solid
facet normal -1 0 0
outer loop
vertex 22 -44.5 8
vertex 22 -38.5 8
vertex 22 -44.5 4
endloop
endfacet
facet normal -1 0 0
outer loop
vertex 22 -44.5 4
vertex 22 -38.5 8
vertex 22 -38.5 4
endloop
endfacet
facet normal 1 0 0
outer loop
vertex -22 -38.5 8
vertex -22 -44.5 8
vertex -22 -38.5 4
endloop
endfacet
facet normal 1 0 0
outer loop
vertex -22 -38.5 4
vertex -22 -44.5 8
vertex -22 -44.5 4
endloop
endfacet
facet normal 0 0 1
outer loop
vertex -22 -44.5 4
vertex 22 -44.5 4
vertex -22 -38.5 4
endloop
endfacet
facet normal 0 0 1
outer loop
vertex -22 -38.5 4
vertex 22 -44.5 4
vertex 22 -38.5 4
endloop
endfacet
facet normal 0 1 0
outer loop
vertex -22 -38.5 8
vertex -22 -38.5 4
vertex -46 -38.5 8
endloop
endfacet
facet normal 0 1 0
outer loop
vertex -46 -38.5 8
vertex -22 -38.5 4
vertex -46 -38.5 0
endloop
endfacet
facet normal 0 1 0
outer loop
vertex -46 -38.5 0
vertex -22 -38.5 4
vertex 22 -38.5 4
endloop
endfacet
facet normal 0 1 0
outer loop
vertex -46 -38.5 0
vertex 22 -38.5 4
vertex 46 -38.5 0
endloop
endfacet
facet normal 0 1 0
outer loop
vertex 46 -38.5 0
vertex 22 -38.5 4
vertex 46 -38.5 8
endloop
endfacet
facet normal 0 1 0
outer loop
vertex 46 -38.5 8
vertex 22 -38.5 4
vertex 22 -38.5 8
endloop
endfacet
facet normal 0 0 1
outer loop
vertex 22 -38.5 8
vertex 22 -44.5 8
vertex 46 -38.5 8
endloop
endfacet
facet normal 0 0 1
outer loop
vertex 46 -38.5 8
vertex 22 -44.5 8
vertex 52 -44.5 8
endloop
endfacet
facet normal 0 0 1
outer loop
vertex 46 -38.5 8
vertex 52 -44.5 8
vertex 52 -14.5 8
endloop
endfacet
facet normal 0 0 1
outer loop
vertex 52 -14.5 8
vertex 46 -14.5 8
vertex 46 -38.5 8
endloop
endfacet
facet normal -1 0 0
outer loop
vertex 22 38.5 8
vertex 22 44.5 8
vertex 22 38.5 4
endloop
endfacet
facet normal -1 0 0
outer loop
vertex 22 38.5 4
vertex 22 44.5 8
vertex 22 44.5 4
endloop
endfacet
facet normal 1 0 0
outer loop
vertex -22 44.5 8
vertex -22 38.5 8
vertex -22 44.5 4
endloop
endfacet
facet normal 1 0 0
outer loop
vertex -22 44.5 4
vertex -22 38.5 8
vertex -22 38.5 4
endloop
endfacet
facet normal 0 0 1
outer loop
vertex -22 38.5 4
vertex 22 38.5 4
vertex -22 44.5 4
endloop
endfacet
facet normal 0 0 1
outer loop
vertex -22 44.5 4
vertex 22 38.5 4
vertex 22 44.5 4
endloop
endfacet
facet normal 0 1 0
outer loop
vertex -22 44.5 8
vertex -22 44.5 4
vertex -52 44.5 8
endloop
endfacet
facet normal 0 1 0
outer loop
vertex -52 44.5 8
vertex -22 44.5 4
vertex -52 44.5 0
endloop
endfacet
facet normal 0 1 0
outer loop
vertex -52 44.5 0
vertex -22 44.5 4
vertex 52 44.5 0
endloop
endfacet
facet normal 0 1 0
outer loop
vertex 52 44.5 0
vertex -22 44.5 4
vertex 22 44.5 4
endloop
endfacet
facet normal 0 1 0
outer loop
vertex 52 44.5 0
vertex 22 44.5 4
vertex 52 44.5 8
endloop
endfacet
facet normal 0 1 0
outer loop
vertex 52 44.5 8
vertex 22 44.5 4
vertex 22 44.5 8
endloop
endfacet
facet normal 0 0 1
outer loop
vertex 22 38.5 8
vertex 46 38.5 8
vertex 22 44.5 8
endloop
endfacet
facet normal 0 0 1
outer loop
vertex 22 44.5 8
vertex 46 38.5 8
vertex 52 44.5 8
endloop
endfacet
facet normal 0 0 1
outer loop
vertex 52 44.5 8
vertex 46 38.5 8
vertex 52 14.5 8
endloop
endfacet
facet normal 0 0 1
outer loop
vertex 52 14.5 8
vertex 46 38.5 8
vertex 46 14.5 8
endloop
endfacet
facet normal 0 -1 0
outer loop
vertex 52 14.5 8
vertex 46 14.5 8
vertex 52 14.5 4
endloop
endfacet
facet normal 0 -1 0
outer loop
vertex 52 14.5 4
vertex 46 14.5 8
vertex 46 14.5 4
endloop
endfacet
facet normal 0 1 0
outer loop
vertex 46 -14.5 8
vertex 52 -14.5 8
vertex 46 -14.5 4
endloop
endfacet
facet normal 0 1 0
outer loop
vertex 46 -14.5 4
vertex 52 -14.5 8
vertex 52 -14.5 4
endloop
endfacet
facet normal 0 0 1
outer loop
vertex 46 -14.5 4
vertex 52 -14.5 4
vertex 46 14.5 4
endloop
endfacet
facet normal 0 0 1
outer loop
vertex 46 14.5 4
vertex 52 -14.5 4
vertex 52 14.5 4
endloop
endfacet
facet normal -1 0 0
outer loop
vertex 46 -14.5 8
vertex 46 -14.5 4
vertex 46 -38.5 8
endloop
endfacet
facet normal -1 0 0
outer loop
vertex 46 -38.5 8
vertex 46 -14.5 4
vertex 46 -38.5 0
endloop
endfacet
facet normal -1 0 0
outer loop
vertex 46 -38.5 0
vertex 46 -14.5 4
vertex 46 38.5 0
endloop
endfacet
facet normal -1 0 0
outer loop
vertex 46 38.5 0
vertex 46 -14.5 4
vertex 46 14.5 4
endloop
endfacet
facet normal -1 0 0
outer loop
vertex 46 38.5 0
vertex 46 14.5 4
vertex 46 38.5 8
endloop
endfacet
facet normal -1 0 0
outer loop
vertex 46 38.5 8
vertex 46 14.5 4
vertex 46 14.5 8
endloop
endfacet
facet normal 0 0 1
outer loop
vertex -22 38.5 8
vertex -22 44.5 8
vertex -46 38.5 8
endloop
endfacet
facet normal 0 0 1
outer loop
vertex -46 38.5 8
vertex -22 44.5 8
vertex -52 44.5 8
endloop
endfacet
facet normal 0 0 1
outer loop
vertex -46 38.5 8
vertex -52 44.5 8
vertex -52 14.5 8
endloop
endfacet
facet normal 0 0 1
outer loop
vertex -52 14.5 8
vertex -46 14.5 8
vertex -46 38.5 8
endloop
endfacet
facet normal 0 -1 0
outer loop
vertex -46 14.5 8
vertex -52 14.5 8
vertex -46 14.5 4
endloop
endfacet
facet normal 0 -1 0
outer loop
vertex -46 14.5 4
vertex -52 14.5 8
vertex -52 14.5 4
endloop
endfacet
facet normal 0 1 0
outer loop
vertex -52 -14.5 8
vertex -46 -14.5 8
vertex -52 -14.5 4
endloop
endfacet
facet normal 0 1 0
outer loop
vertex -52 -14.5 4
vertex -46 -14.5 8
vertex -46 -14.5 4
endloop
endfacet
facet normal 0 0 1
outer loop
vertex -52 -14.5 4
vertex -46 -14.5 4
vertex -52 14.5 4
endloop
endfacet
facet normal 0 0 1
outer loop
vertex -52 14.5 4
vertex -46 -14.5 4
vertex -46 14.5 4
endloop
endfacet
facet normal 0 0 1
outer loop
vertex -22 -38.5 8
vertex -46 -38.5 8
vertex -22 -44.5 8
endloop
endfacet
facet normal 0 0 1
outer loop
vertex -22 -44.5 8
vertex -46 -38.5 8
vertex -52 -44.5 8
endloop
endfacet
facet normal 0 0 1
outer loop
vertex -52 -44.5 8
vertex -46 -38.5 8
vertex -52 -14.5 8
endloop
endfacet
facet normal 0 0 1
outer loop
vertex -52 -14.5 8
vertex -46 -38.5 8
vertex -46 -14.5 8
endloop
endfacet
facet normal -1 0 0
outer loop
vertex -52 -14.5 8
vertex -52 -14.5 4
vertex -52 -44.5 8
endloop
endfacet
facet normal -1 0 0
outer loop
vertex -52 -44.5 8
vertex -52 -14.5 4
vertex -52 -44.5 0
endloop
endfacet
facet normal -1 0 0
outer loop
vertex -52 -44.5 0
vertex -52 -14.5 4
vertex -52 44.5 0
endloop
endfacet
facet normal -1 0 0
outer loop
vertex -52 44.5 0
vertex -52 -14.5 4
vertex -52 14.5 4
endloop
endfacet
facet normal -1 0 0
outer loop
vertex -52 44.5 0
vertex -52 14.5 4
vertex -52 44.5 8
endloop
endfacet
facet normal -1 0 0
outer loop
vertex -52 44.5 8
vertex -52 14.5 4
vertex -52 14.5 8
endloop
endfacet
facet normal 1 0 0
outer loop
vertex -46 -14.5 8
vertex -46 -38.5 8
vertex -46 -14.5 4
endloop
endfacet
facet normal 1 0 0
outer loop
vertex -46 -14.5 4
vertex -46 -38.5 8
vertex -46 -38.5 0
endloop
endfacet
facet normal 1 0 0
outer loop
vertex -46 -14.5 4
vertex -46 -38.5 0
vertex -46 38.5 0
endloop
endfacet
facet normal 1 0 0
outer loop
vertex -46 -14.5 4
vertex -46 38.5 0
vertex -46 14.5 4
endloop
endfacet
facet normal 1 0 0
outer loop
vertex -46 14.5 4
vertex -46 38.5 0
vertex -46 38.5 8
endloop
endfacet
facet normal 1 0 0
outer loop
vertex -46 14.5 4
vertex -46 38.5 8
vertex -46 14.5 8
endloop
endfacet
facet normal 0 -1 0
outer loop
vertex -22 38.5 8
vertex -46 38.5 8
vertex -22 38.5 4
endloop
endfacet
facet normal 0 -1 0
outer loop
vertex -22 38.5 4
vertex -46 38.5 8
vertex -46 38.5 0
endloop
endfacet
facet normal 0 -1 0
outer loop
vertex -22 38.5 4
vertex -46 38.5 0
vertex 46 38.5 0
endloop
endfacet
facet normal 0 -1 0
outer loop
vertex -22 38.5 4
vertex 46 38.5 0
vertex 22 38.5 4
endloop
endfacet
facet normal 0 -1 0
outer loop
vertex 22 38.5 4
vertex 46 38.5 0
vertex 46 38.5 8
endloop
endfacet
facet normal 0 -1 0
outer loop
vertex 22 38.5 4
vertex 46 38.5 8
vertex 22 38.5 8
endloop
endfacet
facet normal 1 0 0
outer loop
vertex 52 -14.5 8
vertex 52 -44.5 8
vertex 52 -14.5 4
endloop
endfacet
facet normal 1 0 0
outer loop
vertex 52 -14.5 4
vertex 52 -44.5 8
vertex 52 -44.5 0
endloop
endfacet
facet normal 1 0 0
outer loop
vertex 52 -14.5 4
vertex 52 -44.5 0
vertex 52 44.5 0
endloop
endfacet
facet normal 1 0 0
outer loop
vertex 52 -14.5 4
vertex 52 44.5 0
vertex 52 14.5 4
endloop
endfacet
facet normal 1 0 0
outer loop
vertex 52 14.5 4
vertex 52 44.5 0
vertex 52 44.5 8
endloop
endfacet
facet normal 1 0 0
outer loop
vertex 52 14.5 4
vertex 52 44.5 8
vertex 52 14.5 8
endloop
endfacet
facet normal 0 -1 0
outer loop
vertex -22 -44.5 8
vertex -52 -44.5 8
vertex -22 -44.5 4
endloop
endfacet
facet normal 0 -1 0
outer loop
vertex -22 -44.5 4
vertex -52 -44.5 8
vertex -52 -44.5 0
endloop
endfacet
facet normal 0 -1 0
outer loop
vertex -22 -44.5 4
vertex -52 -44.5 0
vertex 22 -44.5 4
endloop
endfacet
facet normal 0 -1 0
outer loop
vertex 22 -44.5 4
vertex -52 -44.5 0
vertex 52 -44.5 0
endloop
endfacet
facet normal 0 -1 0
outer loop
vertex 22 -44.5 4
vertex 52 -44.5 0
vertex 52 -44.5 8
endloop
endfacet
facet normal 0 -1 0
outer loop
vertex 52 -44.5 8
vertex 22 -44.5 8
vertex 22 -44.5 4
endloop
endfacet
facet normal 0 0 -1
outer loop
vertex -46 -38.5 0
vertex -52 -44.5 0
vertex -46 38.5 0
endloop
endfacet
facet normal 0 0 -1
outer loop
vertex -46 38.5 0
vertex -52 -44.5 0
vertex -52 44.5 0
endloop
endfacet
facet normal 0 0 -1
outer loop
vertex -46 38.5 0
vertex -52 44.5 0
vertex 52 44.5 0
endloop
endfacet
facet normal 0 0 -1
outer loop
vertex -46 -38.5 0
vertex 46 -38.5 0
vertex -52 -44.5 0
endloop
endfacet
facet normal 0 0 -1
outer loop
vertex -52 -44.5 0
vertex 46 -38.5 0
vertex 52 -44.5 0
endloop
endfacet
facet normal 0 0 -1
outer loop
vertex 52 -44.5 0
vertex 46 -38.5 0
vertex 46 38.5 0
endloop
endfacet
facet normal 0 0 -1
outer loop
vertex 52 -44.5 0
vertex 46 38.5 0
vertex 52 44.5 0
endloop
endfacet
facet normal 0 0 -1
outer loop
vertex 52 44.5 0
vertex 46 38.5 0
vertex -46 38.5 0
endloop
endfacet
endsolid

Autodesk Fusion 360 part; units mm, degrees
sketch "Sketch1" plane through (0, 0, 0) normal (0, 0, 1) x (1, 0, 0)
  line L0 (52, -44.5) -> (-52, -44.5)
  line L1 (-52, -44.5) -> (-52, 44.5)
  line L2 (-52, 44.5) -> (52, 44.5)
  line L3 (52, 44.5) -> (52, -44.5)
  line L4 (52, -44.5) -> (-52, 44.5) construction
  line L5 (-52, -44.5) -> (52, 44.5) construction
  dimension "d1" = 104
  dimension "d2" = 89
extrude "Extrude1" add sketch "Sketch1" along normal blind 8
sketch "Sketch4" plane through (0, 0, 8) normal (0, 0, 1) x (1, 0, 0)
  line L0 (46, -38.5) -> (-46, -38.5)
  line L1 (-46, -38.5) -> (-46, 38.5)
  line L2 (-46, 38.5) -> (46, 38.5)
  line L3 (46, 38.5) -> (46, -38.5)
  line L4 (46, -38.5) -> (-46, 38.5) construction
  line L5 (-46, -38.5) -> (46, 38.5) construction
  dimension "d5" = 77
  dimension "d6" = 92
extrude "Extrude2" cut sketch "Sketch4" against normal blind 8
sketch "Sketch5" plane through (0, 0, 8) normal (0, 0, 1) x (-1, 0, 0)
  line L0 (46, 38.5) -> (46, -38.5)
  line L1 (46, -38.5) -> (-46, -38.5)
  line L2 (-46, -38.5) -> (-46, 38.5)
  line L3 (-46, 38.5) -> (46, 38.5)
  line L4 (-52, -44.5) -> (52, -44.5)
  line L5 (52, -44.5) -> (52, 44.5)
  line L6 (52, 44.5) -> (-52, 44.5)
  line L7 (-52, 44.5) -> (-52, -44.5)
  line L8 (52, -14.5) -> (46, -14.5)
  line L9 (46, -14.5) -> (46, 14.5)
  line L10 (46, 14.5) -> (52, 14.5)
  line L11 (52, 14.5) -> (52, -14.5)
  dimension "d9" = 29
  dimension "d10" = 6
extrude "Extrude3" cut sketch "Sketch5" against normal blind 4 contours L0 L5 L8 L9 L10 L11
sketch "Sketch6" plane through (0, 0, 8) normal (0, 0, 1) x (-1, 0, 0)
  line L0 (46, 14.5) -> (52, 14.5)
  line L1 (52, 14.5) -> (52, 44.5)
  line L2 (52, 44.5) -> (-52, 44.5)
  line L3 (-52, 44.5) -> (-52, -44.5)
  line L4 (-52, -44.5) -> (52, -44.5)
  line L5 (52, -44.5) -> (52, -14.5)
  line L6 (52, -14.5) -> (46, -14.5)
  line L7 (46, -14.5) -> (46, -38.5)
  line L8 (46, -38.5) -> (-46, -38.5)
  line L9 (-46, -38.5) -> (-46, 38.5)
  line L10 (-46, 38.5) -> (46, 38.5)
  line L11 (46, 38.5) -> (46, 14.5)
  line L12 (-46, -14.5) -> (-52, -14.5)
  line L13 (-52, -14.5) -> (-52, 14.5)
  line L14 (-52, 14.5) -> (-46, 14.5)
  line L15 (-46, 14.5) -> (-46, -14.5)
  dimension "d13" = 29
  dimension "d14" = 6
extrude "Extrude4" cut sketch "Sketch6" against normal blind 4 contours L3 L9 L12 L13 L14 L15
sketch "Sketch7" plane through (0, 0, 8) normal (0, 0, 1) x (-1, 0, 0)
  line L0 (-46, -14.5) -> (-52, -14.5)
  line L1 (-52, -14.5) -> (-52, -44.5)
  line L2 (-52, -44.5) -> (52, -44.5)
  line L3 (52, -44.5) -> (52, -14.5)
  line L4 (52, -14.5) -> (46, -14.5)
  line L5 (46, -14.5) -> (46, -38.5)
  line L6 (46, -38.5) -> (-46, -38.5)
  line L7 (-46, -38.5) -> (-46, -14.5)
  line L8 (22, -44.5) -> (-22, -44.5)
  line L9 (-22, -44.5) -> (-22, -38.5)
  line L10 (-22, -38.5) -> (22, -38.5)
  line L11 (22, -38.5) -> (22, -44.5)
  dimension "d17" = 6
  dimension "d18" = 44
extrude "Extrude5" cut sketch "Sketch7" against normal blind 4 contours L2 L6 L8 L9 L10 L11
sketch "Sketch8" plane through (0, 0, 8) normal (0, 0, 1) x (-1, 0, 0)
  line L0 (-52, 14.5) -> (-46, 14.5)
  line L1 (-46, 14.5) -> (-46, 38.5)
  line L2 (-46, 38.5) -> (46, 38.5)
  line L3 (46, 38.5) -> (46, 14.5)
  line L4 (46, 14.5) -> (52, 14.5)
  line L5 (52, 14.5) -> (52, 44.5)
  line L6 (52, 44.5) -> (-52, 44.5)
  line L7 (-52, 44.5) -> (-52, 14.5)
  line L8 (22.0005, 38.5) -> (-21.9995, 38.5)
  line L9 (-21.9995, 38.5) -> (-21.9995, 44.5)
  line L10 (-21.9995, 44.5) -> (22.0005, 44.5)
  line L11 (22.0005, 44.5) -> (22.0005, 38.5)
  dimension "d21" = 44
  dimension "d22" = 6
extrude "Extrude6" cut sketch "Sketch8" against normal blind 4 contours L2 L6 L8 L9 L10 L11
